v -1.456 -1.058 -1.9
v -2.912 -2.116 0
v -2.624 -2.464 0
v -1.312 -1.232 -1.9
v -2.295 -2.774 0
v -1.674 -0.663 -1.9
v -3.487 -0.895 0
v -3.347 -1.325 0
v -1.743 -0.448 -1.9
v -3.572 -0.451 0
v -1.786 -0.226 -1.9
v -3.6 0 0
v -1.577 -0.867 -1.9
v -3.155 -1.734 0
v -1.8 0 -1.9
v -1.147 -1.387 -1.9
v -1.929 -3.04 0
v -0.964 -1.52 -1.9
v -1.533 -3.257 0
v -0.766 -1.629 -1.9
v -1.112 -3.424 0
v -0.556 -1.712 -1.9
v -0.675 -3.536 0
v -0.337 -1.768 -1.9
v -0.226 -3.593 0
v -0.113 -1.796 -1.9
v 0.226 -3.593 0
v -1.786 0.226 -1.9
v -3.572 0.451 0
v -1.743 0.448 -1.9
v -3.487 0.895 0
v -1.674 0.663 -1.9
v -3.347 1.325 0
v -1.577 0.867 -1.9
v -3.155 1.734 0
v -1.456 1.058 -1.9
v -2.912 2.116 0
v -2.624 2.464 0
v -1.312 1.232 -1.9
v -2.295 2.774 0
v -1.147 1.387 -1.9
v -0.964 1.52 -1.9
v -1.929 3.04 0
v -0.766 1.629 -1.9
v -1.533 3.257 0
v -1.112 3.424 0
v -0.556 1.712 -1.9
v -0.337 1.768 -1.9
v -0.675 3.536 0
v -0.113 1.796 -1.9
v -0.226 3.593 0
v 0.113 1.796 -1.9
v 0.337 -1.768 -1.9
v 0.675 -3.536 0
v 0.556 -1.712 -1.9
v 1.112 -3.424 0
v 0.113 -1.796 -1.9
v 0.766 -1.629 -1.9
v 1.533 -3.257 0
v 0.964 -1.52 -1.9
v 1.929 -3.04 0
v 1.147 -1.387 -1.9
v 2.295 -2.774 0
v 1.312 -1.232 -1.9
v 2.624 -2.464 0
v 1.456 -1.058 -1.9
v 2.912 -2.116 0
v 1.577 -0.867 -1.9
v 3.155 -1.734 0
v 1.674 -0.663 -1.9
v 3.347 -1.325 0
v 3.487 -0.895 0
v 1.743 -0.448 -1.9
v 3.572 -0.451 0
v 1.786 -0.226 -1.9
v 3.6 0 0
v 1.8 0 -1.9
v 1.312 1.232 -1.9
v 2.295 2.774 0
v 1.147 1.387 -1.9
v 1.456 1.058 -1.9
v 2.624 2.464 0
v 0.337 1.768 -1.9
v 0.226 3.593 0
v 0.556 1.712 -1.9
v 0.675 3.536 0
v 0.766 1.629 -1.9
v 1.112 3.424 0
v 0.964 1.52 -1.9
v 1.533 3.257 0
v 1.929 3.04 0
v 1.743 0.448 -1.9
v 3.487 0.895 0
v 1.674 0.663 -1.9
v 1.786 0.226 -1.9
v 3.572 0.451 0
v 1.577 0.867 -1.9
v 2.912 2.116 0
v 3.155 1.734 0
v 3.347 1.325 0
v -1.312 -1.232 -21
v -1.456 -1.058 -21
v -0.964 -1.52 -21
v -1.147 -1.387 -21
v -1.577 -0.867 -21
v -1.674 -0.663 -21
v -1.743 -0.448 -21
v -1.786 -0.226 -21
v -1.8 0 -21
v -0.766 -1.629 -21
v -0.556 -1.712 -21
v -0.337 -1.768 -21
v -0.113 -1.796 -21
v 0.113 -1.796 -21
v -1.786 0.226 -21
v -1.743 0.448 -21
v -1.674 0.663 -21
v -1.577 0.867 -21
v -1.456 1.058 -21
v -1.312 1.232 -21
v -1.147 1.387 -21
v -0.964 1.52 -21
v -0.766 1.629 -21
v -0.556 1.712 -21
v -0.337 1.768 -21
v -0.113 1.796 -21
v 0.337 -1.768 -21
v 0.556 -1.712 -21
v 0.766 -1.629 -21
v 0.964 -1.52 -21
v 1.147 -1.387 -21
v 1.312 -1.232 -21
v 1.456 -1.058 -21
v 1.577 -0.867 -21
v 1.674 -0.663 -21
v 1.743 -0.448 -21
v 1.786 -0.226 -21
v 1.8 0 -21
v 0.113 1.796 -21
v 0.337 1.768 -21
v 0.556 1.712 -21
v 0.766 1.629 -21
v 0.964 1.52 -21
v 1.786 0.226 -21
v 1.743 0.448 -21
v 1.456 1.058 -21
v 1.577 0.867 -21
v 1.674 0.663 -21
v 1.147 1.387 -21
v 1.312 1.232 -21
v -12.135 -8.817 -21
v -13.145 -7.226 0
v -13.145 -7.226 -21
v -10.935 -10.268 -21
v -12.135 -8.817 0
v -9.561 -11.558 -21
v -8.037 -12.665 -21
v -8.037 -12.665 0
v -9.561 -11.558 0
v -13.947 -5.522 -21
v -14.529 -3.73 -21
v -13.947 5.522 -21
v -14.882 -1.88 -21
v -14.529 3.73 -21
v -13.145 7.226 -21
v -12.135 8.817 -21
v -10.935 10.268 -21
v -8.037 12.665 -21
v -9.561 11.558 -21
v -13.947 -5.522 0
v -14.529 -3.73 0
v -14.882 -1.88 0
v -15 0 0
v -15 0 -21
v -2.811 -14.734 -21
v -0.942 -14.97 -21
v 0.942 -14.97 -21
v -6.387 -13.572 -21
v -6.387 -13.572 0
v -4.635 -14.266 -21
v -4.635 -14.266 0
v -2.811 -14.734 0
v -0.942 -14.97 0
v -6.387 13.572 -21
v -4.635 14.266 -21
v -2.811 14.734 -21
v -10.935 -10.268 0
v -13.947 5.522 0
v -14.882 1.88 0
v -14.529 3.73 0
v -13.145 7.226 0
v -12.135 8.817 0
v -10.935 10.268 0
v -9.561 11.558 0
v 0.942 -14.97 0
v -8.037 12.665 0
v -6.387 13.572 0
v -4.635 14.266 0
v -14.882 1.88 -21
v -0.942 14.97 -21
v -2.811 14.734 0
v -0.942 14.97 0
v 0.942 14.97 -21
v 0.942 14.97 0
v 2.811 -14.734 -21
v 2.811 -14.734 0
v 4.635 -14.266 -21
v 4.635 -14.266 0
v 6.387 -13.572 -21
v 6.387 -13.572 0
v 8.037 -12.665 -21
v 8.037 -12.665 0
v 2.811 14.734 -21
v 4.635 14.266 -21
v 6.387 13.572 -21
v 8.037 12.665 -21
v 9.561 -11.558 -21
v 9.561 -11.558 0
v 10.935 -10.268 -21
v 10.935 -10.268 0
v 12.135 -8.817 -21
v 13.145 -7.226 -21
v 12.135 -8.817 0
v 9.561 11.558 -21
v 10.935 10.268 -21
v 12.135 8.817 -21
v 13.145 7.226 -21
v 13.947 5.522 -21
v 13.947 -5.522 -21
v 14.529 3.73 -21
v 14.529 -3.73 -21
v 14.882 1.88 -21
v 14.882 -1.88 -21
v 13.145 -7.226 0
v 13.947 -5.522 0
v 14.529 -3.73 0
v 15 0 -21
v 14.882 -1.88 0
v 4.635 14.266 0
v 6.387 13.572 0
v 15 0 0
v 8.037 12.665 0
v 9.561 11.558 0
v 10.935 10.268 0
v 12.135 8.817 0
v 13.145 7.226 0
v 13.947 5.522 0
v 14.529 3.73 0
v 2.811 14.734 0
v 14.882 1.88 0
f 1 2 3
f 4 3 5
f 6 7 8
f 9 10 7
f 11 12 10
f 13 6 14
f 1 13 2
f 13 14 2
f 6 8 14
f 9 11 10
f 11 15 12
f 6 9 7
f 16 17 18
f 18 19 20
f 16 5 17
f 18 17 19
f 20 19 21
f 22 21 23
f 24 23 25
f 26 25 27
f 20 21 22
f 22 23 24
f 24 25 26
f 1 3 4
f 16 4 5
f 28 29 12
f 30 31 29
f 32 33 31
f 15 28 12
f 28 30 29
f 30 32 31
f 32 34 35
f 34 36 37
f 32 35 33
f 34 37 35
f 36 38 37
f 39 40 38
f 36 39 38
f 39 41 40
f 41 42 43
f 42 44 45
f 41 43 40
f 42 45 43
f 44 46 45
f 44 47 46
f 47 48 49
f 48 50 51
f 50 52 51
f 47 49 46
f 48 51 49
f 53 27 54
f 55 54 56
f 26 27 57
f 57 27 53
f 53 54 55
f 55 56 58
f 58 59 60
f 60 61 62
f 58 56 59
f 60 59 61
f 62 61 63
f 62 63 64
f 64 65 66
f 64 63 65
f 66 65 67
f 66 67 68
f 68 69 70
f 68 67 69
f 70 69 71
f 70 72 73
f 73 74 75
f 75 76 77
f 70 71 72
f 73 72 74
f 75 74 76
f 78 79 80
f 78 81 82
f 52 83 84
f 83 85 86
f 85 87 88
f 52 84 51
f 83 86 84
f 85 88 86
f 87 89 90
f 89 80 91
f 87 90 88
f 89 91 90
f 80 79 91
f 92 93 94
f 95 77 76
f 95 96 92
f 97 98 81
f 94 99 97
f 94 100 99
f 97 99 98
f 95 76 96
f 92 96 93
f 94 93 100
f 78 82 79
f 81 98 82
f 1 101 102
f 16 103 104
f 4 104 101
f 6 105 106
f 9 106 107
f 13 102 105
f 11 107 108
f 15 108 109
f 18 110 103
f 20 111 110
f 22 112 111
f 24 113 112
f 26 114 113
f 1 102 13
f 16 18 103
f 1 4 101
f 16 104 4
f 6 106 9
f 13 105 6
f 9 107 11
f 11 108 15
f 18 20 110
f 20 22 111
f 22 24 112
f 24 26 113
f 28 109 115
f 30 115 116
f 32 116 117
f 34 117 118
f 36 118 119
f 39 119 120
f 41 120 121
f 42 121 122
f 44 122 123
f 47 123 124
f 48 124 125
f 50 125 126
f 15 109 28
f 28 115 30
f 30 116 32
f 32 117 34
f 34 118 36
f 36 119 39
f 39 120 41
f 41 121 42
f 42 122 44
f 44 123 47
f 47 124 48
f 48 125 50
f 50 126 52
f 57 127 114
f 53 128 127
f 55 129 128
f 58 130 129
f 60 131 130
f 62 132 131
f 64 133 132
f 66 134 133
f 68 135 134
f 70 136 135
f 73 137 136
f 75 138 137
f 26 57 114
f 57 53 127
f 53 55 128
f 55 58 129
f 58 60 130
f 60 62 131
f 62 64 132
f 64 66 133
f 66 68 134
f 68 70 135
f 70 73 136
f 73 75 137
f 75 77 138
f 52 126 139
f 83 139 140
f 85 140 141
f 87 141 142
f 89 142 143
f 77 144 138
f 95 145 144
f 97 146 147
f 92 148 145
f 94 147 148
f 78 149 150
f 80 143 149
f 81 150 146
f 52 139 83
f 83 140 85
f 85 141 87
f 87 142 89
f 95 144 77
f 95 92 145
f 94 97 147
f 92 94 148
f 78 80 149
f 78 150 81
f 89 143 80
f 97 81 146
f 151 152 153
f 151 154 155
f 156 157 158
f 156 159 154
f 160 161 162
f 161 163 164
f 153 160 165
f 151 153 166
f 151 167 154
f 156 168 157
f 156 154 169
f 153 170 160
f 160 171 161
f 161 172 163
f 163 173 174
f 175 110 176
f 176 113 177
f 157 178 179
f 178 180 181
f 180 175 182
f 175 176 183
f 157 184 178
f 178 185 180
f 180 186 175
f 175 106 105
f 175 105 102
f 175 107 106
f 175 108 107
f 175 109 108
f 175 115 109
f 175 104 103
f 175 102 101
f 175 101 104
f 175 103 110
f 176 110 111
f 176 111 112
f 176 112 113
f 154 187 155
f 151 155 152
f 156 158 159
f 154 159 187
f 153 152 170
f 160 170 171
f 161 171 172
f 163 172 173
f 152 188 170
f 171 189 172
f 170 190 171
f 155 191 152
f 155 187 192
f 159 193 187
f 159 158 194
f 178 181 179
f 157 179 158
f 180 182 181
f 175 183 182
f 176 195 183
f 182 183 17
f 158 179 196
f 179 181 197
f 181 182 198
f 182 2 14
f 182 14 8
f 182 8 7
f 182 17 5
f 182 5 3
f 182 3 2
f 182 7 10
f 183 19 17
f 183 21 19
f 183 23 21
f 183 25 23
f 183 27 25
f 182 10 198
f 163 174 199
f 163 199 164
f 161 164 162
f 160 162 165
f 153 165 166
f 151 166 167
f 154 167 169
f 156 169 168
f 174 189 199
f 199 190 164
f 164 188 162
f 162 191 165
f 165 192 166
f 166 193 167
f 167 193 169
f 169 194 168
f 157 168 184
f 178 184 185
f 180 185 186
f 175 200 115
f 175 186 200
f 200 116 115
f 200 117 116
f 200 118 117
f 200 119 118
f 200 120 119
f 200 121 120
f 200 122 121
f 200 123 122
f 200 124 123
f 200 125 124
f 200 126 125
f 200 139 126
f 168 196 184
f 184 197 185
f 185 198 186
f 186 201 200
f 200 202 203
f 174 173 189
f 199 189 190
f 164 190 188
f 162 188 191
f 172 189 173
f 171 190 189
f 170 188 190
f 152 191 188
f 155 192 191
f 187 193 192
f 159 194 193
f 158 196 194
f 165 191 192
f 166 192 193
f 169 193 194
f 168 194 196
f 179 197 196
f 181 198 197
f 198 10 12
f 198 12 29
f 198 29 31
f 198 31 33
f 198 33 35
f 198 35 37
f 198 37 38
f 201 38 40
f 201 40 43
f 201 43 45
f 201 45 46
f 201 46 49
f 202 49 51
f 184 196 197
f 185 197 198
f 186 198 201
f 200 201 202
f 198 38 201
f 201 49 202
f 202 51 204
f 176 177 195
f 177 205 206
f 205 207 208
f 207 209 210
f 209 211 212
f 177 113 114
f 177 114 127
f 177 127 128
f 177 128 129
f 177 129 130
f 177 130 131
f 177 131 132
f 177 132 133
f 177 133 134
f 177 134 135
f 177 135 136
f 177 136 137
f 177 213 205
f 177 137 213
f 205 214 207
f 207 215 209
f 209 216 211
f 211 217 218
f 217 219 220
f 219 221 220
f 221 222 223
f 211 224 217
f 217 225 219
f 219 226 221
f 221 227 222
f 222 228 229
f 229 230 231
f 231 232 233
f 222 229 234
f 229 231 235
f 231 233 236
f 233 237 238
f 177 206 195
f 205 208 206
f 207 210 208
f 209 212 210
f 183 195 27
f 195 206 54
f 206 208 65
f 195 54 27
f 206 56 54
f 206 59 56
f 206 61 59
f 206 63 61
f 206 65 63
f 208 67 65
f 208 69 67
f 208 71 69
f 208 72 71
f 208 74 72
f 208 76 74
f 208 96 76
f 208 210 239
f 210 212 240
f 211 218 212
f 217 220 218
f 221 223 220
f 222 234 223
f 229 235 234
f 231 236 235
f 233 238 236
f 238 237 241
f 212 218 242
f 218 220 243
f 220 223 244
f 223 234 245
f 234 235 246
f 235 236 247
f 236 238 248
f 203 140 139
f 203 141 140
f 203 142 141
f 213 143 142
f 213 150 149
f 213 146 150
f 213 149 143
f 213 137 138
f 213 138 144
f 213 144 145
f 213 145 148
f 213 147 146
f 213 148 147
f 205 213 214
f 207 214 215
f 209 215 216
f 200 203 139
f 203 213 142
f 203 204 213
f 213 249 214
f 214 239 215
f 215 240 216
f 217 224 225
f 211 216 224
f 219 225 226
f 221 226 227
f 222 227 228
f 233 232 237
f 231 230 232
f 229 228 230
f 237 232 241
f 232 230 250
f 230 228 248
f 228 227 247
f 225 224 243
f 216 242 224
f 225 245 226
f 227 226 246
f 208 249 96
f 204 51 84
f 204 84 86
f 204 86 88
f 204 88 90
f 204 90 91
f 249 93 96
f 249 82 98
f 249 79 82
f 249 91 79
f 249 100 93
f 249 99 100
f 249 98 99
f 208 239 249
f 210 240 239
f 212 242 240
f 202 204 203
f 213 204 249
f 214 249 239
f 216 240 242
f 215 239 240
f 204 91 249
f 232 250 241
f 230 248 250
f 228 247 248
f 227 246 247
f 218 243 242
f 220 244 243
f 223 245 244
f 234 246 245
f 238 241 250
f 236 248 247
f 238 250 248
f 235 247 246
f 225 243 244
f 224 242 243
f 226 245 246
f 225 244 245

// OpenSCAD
$fn = 50;


difference() {
	union() {
		translate(v = [0, 0, -21.0000000000]) {
			cylinder(h = 21, r = 15.0000000000);
		}
	}
	union() {
		translate(v = [0, 0, 0]) {
			rotate(a = [0, 0, 0]) {
				difference() {
					union() {
						translate(v = [0, 0, -24.0000000000]) {
							cylinder(h = 24, r = 1.5000000000);
						}
						translate(v = [0, 0, -1.9000000000]) {
							cylinder(h = 1.9000000000, r1 = 1.8000000000, r2 = 3.6000000000);
						}
						translate(v = [0, 0, -24.0000000000]) {
							cylinder(h = 24, r = 1.8000000000);
						}
						translate(v = [0, 0, -24.0000000000]) {
							cylinder(h = 24, r = 1.5000000000);
						}
					}
					union();
				}
			}
		}
	}
}
